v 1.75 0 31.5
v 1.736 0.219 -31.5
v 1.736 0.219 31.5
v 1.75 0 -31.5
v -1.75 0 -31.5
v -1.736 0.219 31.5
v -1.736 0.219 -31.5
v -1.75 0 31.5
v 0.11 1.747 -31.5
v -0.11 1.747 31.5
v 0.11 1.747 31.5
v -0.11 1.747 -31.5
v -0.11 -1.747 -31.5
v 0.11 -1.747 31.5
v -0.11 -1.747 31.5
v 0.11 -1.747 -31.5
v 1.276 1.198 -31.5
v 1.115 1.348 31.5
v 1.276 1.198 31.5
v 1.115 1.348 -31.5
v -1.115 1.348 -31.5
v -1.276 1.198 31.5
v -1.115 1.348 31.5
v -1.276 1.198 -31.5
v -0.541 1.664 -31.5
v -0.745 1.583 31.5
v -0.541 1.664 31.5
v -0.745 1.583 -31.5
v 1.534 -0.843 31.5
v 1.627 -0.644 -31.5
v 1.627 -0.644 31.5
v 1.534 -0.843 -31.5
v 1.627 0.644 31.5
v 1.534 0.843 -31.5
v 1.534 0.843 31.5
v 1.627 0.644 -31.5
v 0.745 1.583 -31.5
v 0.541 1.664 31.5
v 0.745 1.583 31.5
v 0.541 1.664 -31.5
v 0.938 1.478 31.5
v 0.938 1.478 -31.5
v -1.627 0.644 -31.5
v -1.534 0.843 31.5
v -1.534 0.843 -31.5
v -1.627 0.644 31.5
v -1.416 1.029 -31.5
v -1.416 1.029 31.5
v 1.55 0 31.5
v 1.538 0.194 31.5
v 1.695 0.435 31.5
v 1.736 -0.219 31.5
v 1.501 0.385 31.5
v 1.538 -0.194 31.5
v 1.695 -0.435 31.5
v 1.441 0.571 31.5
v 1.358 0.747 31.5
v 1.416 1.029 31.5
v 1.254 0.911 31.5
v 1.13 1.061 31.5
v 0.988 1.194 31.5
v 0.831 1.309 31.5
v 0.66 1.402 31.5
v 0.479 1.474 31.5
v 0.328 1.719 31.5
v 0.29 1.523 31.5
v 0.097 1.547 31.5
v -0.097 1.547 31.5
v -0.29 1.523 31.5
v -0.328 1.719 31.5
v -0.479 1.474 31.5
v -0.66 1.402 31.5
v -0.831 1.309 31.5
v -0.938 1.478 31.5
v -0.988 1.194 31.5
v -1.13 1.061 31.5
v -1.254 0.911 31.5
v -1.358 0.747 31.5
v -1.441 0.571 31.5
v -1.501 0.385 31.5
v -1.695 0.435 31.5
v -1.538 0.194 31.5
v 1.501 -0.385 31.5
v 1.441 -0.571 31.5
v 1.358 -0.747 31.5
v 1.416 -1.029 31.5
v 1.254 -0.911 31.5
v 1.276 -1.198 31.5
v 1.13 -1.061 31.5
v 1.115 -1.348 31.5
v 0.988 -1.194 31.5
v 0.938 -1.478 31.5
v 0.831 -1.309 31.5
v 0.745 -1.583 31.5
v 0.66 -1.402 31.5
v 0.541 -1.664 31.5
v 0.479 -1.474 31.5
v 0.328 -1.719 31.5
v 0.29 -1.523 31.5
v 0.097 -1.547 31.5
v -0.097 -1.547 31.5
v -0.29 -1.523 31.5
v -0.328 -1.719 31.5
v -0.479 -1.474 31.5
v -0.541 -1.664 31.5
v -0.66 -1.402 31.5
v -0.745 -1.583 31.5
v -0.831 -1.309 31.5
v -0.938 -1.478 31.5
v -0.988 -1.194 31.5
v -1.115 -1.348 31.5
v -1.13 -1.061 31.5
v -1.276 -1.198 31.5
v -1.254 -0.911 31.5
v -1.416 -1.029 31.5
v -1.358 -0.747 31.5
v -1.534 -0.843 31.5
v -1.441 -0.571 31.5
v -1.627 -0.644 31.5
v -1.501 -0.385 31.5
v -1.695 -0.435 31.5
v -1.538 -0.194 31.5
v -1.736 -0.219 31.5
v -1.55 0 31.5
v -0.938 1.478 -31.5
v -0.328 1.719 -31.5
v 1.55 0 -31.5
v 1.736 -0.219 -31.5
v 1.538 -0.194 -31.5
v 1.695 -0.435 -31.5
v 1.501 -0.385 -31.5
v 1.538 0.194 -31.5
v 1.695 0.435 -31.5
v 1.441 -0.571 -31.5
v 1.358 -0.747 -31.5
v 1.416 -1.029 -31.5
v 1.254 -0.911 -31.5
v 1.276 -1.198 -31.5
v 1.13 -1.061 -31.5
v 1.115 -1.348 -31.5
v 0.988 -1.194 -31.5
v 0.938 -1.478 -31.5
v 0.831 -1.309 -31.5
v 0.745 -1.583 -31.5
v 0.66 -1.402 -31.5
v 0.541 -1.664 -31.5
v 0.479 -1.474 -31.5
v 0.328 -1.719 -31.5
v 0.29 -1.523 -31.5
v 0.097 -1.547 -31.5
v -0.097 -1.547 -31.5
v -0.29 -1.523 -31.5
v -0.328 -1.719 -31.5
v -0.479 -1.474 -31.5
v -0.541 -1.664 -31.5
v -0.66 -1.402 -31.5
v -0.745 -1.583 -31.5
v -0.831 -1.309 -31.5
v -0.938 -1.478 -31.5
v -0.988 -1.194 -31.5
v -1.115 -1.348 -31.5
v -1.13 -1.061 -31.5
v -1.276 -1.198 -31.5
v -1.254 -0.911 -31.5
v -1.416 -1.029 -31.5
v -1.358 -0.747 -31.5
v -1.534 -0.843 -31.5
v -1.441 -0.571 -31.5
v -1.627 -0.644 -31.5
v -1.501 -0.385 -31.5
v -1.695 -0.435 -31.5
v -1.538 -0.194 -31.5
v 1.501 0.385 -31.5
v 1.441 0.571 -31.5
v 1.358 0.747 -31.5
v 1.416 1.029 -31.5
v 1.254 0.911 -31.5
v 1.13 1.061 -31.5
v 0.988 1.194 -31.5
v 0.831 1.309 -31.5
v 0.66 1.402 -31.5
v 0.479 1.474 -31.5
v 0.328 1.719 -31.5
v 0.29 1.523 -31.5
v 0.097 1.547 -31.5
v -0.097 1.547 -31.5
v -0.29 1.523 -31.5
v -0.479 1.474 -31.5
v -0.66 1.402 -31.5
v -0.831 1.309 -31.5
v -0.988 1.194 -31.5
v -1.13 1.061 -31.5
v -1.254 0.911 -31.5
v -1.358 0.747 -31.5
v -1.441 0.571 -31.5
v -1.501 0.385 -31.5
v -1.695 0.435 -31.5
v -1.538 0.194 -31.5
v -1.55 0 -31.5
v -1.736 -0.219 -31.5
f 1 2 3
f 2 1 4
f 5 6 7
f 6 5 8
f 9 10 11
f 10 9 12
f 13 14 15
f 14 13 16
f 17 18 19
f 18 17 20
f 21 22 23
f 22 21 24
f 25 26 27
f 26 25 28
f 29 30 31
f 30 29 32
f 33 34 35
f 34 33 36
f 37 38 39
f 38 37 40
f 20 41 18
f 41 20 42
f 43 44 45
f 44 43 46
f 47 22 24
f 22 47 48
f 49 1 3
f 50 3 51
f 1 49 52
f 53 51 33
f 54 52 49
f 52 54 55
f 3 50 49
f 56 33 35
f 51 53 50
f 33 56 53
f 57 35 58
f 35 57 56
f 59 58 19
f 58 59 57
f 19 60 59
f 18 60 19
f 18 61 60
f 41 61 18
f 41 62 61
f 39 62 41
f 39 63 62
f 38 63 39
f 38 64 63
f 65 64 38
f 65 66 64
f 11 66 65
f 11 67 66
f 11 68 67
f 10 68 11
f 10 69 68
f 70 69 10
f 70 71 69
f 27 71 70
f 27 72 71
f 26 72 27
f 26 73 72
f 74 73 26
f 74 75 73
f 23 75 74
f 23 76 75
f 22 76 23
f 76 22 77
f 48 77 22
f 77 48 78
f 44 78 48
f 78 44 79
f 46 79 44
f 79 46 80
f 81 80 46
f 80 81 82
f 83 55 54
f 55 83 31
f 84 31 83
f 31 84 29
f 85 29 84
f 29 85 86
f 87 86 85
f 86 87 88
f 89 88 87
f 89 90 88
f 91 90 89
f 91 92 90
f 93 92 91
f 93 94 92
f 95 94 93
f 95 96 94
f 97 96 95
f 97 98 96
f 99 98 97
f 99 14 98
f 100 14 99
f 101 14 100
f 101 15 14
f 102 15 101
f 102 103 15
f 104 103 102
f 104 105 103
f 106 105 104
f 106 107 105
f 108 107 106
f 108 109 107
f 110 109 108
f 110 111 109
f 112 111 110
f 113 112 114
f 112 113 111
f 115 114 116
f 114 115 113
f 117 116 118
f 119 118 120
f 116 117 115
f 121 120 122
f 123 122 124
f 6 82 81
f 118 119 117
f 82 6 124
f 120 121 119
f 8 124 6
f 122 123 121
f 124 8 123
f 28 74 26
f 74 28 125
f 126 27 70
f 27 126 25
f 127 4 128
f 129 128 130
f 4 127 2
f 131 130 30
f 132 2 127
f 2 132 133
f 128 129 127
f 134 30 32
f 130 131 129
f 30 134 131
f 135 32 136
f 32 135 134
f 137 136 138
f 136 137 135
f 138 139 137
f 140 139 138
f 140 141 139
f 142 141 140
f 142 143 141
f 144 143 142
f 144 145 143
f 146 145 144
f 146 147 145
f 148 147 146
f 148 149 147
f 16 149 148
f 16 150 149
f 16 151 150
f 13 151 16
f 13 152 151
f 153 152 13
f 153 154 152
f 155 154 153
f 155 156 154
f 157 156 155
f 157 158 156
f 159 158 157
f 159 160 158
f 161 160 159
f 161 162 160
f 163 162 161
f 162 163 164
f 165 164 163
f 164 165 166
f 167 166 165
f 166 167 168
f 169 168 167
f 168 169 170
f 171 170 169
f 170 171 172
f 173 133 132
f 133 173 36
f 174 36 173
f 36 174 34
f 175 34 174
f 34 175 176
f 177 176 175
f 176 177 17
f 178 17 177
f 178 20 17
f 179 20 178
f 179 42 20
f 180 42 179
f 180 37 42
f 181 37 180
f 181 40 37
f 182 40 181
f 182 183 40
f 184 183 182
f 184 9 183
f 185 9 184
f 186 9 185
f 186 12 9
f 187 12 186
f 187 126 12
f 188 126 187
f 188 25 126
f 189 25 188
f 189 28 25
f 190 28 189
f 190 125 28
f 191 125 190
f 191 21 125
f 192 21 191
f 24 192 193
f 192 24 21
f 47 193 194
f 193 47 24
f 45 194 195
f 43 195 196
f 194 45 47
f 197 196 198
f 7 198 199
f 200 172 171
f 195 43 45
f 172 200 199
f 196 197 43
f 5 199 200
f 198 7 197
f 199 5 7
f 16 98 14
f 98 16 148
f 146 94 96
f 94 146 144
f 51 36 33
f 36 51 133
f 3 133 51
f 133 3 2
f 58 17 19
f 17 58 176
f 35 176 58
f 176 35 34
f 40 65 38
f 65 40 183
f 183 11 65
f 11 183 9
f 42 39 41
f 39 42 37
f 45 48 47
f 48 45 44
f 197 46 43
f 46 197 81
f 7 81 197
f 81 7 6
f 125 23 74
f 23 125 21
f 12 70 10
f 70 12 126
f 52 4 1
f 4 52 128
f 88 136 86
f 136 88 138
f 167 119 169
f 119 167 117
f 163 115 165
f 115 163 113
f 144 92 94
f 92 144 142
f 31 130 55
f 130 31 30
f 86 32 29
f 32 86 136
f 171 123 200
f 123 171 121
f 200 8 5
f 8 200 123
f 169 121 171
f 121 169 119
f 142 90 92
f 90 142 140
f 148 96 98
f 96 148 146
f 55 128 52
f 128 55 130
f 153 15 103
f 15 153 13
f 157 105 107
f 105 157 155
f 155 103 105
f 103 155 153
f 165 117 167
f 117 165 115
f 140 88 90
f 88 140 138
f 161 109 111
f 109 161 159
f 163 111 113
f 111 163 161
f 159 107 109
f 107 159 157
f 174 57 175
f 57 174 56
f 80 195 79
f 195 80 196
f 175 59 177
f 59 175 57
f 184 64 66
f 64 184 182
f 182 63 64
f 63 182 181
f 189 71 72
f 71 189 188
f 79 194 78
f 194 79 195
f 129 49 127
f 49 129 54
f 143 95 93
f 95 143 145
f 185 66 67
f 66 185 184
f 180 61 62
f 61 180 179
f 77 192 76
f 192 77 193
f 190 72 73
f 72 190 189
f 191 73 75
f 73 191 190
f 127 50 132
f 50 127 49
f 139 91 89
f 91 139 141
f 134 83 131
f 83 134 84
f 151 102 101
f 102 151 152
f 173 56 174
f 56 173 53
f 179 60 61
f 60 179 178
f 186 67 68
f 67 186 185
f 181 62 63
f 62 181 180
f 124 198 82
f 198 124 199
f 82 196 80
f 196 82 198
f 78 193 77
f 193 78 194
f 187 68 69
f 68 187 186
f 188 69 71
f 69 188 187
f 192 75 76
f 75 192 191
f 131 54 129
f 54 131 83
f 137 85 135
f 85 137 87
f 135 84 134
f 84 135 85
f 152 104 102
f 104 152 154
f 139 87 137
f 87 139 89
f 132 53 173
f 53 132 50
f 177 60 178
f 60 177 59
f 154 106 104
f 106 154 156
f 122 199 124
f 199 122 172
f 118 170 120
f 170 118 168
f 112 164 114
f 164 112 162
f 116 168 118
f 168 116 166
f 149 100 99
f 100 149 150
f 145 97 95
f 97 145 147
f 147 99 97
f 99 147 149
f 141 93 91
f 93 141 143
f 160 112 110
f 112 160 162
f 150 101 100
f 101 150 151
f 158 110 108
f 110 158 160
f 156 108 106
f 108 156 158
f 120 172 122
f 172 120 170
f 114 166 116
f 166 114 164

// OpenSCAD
$fn = 50;


difference() {
	union() {
		translate(v = [0, 0, -31.5000000000]) {
			cylinder(h = 63, r = 1.7500000000);
		}
	}
	union() {
		translate(v = [0, 0, -100.0000000000]) {
			cylinder(h = 200, r = 1.5500000000);
		}
	}
}
